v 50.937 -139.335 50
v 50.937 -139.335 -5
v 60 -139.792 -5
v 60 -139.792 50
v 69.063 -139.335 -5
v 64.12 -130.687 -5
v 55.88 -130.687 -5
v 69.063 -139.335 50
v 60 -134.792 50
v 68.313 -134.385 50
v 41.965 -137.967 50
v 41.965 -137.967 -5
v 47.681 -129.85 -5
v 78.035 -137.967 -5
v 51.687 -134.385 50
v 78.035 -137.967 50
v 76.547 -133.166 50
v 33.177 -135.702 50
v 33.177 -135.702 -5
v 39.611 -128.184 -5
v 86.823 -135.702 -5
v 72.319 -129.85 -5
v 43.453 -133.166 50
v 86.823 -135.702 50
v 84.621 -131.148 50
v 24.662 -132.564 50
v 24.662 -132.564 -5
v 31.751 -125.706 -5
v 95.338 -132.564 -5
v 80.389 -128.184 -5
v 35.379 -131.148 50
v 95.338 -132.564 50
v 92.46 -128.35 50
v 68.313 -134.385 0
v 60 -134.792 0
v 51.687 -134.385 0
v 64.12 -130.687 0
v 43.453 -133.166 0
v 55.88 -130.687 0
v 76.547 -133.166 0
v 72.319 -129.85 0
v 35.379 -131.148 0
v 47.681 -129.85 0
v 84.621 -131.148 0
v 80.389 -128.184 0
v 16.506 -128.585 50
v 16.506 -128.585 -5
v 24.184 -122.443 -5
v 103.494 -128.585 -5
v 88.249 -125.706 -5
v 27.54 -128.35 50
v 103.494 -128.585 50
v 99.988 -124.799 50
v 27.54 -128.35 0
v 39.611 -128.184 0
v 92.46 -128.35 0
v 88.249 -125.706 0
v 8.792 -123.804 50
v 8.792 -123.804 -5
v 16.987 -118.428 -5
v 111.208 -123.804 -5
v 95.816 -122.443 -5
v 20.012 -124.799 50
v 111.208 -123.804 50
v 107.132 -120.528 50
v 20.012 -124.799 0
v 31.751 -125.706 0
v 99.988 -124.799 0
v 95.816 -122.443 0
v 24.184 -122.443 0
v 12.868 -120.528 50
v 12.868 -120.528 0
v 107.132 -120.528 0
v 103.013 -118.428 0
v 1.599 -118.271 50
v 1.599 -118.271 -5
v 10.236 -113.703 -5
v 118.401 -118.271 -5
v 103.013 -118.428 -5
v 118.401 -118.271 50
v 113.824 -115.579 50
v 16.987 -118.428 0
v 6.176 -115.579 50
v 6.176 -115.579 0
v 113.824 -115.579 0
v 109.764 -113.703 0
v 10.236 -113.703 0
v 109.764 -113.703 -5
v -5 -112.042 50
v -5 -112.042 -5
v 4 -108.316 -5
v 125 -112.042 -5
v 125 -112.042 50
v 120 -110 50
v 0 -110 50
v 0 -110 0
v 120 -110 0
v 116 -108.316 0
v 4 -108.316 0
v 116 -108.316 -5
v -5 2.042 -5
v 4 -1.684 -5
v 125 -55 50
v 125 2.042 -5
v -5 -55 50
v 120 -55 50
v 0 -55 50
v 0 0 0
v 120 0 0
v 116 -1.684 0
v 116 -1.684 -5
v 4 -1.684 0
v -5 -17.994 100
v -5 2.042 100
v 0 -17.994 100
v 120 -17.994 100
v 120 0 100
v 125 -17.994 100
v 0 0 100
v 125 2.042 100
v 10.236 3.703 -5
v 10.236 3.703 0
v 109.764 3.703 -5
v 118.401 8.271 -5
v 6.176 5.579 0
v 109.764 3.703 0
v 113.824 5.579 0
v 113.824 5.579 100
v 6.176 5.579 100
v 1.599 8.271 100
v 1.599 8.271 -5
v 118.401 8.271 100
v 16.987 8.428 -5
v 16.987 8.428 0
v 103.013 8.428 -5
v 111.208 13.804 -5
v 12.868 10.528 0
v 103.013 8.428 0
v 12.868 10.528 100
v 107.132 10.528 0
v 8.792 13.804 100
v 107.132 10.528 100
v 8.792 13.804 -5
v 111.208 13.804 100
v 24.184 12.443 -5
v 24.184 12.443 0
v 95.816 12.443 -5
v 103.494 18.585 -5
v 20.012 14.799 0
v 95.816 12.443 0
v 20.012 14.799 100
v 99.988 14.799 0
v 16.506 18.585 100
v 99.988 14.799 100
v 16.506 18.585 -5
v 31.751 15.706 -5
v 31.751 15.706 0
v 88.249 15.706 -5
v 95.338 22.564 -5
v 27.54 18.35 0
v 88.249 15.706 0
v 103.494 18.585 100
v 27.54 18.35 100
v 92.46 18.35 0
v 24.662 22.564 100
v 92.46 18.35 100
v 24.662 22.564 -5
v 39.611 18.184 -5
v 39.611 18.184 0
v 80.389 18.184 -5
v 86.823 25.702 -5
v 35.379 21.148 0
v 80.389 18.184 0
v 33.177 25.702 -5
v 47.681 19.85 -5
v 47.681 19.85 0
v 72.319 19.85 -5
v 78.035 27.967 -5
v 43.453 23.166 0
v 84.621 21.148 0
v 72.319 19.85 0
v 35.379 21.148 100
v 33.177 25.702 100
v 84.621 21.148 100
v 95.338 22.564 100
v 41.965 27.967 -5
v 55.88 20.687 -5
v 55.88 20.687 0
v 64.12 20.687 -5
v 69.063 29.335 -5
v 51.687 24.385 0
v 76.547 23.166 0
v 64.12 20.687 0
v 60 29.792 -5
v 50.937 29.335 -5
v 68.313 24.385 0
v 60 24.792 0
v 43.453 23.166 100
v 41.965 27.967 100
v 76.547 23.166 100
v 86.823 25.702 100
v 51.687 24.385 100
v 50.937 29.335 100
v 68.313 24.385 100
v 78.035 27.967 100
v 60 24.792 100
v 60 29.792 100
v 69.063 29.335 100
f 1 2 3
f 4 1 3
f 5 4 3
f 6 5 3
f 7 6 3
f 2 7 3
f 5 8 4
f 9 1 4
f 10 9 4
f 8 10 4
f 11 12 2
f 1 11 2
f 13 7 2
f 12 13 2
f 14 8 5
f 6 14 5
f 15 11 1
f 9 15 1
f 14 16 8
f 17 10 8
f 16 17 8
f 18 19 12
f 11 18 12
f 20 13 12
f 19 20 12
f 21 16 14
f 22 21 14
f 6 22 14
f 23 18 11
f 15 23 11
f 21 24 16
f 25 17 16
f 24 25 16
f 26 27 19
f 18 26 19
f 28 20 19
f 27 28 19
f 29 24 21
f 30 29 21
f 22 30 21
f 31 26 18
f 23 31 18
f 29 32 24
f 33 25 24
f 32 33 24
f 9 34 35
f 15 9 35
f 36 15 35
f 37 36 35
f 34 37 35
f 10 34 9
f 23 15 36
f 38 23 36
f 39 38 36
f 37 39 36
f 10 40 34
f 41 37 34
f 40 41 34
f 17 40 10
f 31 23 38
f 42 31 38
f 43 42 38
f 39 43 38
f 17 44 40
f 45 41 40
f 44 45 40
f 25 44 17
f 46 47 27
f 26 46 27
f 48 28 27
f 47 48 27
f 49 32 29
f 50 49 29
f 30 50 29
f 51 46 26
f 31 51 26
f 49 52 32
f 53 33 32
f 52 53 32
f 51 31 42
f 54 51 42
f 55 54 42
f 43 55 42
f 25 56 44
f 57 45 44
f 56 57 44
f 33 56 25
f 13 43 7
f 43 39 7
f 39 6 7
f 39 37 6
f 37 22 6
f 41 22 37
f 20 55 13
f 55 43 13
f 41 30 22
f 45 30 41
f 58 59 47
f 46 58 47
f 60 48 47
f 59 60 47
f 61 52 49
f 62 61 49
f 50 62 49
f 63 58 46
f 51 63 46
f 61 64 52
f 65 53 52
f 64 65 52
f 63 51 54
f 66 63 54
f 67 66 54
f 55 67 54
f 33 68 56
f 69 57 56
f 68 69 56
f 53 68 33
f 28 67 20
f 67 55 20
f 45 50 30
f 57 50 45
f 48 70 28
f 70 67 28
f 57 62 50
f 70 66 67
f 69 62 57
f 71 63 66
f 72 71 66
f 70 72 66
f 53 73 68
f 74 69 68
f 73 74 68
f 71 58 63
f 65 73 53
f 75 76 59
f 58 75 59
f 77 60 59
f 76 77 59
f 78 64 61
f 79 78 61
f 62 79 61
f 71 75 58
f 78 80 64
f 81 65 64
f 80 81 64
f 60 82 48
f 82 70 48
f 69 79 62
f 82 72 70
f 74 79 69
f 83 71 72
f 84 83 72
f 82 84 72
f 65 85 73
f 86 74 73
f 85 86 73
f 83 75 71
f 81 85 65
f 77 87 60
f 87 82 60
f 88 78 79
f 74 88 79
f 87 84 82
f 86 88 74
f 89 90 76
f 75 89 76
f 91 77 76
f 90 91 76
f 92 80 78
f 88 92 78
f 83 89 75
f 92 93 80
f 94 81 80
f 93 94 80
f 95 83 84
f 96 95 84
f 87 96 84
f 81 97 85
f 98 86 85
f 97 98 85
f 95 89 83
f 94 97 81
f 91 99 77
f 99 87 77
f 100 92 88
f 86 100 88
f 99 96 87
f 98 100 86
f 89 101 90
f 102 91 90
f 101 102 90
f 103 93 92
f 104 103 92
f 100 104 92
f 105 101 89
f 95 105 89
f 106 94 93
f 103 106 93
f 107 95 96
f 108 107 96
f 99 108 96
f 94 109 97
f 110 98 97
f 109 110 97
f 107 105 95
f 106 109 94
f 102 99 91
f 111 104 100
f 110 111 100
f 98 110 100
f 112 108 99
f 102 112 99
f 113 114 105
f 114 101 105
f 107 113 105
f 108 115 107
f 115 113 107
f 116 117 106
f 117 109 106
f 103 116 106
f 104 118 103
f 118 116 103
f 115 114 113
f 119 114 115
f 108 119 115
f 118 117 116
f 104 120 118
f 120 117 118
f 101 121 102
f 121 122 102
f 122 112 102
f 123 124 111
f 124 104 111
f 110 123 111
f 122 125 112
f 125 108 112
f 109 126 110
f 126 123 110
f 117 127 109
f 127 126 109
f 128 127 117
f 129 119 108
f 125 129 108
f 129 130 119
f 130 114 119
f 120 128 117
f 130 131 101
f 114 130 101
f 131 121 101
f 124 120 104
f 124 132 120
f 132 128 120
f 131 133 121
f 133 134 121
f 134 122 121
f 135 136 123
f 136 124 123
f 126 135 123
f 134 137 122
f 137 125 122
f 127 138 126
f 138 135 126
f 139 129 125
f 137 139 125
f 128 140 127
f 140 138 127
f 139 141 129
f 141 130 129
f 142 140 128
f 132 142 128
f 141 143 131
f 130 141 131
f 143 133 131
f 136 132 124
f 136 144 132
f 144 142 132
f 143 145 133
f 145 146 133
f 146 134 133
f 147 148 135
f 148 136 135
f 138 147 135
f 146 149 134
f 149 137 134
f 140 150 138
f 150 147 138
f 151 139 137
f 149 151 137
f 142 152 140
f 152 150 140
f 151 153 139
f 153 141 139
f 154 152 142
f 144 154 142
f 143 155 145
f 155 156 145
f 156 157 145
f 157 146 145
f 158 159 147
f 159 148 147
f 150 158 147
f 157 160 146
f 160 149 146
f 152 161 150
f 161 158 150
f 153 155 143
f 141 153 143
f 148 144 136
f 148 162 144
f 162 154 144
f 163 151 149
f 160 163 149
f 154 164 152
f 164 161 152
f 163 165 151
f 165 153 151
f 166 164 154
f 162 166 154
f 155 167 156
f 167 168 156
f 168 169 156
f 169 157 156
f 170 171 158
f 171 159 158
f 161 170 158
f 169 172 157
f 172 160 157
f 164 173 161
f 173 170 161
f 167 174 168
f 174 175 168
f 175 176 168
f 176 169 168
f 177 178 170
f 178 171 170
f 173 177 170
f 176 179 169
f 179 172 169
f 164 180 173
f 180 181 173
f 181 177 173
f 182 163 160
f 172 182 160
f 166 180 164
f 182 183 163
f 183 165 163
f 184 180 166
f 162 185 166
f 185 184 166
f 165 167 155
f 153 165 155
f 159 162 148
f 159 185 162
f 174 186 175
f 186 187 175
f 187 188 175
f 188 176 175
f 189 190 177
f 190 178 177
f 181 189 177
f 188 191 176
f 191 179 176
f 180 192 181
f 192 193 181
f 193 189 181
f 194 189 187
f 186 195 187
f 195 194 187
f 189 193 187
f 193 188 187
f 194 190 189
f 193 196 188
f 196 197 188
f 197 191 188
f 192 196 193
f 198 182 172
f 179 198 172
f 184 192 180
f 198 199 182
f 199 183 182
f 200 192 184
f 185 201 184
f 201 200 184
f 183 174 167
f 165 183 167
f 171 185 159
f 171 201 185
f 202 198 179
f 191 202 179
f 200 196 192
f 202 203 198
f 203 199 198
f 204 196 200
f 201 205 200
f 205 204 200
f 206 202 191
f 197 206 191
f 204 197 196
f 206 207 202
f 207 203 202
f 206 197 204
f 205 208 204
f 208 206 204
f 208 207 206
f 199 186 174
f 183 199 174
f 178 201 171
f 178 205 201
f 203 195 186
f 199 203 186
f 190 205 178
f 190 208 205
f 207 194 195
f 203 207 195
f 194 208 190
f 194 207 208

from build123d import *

# Parameters (mm, degrees)
ESBO_O1_W                = 95.625
ESBO_O1_H                = 63.75
RESSALTO_EXTRUS_O1_DEPTH = 50
RESSALTO_EXTRUS_O2_DEPTH = 100
CORTE_EXTRUS_O1_DEPTH    = 100
CORTE_EXTRUS_O2_DEPTH    = 169
RESSALTO_EXTRUS_O3_DEPTH = 5


with BuildPart() as part:
    # Esboço1 → Ressalto-extrusão1 (new body)
    with BuildSketch(Plane.XY):
        with BuildLine():
            Line((0, 0), (0, -110))
            ThreePointArc((0, -110), (60, -134.792027106), (120, -110))
            Line((120, -110), (120, 0))
            ThreePointArc((120, 0), (60, 24.792027106), (0, 0))
        make_face()
        with Locations((60, -55)):
            Rectangle(ESBO_O1_W, ESBO_O1_H, mode=Mode.SUBTRACT)
    extrude(amount=RESSALTO_EXTRUS_O1_DEPTH)

    # Esboço2 → Ressalto-extrusão2 (add)
    with BuildSketch(Plane(origin=(0, 0, 0), x_dir=(-1, 0, 0), z_dir=(0, 0, -1))):
        with BuildLine():
            Line((-125, 2.041525096), (-125, -112.041525096))
            ThreePointArc((-125, -112.041525096), (-60, -139.792027106), (5, -112.041525096))
            Line((5, -112.041525096), (5, 2.041525096))
            ThreePointArc((5, 2.041525096), (-60, 29.792027106), (-125, 2.041525096))
        make_face()
        with BuildLine():
            Line((0, 0), (0, -110))
            ThreePointArc((0, -110), (-60, -134.792027106), (-120, -110))
            Line((-120, -110), (-120, 0))
            ThreePointArc((-120, 0), (-60, 24.792027106), (0, 0))
        make_face(mode=Mode.SUBTRACT)
    extrude(amount=-RESSALTO_EXTRUS_O2_DEPTH)

    # Esboço3 → Corte-extrusão1 (cut)
    with BuildSketch(Plane.XY.offset(50)):
        with BuildLine():
            Line((0, 0), (0, -110))
            ThreePointArc((0, -110), (60, -134.792027106), (120, -110))
            Line((120, -110), (120, 0))
            ThreePointArc((120, 0), (60, 24.792027106), (0, 0))
        make_face()
    extrude(amount=-CORTE_EXTRUS_O1_DEPTH, mode=Mode.SUBTRACT)

    # Esboço4 → Corte-extrusão2 (cut)
    with BuildSketch(Plane(origin=(125, 0, 0), x_dir=(0, 0, -1), z_dir=(1, 0, 0))):
        Polygon((-50, -55), (-100, -17.994062777), (-100, -175.493521459), (-50, -175.493521459), align=None)
    extrude(amount=-CORTE_EXTRUS_O2_DEPTH, mode=Mode.SUBTRACT)

    # Esboço5 → Ressalto-extrusão3 (add)
    with BuildSketch(Plane(origin=(0, 0, 0), x_dir=(-1, 0, 0), z_dir=(0, 0, -1))):
        with BuildLine():
            Line((-125, 2.041525096), (-125, -112.041525096))
            ThreePointArc((-125, -112.041525096), (-60, -139.792027106), (5, -112.041525096))
            Line((5, -112.041525096), (5, 2.041525096))
            ThreePointArc((5, 2.041525096), (-60, 29.792027106), (-125, 2.041525096))
        make_face()
        with BuildLine():
            Line((-116, -1.68447334), (-116, -108.31552666))
            ThreePointArc((-116, -108.31552666), (-60, -130.792027106), (-4, -108.31552666))
            Line((-4, -108.31552666), (-4, -1.68447334))
            ThreePointArc((-4, -1.68447334), (-60, 20.792027106), (-116, -1.68447334))
        make_face(mode=Mode.SUBTRACT)
    extrude(amount=RESSALTO_EXTRUS_O3_DEPTH)


solid = part.part
